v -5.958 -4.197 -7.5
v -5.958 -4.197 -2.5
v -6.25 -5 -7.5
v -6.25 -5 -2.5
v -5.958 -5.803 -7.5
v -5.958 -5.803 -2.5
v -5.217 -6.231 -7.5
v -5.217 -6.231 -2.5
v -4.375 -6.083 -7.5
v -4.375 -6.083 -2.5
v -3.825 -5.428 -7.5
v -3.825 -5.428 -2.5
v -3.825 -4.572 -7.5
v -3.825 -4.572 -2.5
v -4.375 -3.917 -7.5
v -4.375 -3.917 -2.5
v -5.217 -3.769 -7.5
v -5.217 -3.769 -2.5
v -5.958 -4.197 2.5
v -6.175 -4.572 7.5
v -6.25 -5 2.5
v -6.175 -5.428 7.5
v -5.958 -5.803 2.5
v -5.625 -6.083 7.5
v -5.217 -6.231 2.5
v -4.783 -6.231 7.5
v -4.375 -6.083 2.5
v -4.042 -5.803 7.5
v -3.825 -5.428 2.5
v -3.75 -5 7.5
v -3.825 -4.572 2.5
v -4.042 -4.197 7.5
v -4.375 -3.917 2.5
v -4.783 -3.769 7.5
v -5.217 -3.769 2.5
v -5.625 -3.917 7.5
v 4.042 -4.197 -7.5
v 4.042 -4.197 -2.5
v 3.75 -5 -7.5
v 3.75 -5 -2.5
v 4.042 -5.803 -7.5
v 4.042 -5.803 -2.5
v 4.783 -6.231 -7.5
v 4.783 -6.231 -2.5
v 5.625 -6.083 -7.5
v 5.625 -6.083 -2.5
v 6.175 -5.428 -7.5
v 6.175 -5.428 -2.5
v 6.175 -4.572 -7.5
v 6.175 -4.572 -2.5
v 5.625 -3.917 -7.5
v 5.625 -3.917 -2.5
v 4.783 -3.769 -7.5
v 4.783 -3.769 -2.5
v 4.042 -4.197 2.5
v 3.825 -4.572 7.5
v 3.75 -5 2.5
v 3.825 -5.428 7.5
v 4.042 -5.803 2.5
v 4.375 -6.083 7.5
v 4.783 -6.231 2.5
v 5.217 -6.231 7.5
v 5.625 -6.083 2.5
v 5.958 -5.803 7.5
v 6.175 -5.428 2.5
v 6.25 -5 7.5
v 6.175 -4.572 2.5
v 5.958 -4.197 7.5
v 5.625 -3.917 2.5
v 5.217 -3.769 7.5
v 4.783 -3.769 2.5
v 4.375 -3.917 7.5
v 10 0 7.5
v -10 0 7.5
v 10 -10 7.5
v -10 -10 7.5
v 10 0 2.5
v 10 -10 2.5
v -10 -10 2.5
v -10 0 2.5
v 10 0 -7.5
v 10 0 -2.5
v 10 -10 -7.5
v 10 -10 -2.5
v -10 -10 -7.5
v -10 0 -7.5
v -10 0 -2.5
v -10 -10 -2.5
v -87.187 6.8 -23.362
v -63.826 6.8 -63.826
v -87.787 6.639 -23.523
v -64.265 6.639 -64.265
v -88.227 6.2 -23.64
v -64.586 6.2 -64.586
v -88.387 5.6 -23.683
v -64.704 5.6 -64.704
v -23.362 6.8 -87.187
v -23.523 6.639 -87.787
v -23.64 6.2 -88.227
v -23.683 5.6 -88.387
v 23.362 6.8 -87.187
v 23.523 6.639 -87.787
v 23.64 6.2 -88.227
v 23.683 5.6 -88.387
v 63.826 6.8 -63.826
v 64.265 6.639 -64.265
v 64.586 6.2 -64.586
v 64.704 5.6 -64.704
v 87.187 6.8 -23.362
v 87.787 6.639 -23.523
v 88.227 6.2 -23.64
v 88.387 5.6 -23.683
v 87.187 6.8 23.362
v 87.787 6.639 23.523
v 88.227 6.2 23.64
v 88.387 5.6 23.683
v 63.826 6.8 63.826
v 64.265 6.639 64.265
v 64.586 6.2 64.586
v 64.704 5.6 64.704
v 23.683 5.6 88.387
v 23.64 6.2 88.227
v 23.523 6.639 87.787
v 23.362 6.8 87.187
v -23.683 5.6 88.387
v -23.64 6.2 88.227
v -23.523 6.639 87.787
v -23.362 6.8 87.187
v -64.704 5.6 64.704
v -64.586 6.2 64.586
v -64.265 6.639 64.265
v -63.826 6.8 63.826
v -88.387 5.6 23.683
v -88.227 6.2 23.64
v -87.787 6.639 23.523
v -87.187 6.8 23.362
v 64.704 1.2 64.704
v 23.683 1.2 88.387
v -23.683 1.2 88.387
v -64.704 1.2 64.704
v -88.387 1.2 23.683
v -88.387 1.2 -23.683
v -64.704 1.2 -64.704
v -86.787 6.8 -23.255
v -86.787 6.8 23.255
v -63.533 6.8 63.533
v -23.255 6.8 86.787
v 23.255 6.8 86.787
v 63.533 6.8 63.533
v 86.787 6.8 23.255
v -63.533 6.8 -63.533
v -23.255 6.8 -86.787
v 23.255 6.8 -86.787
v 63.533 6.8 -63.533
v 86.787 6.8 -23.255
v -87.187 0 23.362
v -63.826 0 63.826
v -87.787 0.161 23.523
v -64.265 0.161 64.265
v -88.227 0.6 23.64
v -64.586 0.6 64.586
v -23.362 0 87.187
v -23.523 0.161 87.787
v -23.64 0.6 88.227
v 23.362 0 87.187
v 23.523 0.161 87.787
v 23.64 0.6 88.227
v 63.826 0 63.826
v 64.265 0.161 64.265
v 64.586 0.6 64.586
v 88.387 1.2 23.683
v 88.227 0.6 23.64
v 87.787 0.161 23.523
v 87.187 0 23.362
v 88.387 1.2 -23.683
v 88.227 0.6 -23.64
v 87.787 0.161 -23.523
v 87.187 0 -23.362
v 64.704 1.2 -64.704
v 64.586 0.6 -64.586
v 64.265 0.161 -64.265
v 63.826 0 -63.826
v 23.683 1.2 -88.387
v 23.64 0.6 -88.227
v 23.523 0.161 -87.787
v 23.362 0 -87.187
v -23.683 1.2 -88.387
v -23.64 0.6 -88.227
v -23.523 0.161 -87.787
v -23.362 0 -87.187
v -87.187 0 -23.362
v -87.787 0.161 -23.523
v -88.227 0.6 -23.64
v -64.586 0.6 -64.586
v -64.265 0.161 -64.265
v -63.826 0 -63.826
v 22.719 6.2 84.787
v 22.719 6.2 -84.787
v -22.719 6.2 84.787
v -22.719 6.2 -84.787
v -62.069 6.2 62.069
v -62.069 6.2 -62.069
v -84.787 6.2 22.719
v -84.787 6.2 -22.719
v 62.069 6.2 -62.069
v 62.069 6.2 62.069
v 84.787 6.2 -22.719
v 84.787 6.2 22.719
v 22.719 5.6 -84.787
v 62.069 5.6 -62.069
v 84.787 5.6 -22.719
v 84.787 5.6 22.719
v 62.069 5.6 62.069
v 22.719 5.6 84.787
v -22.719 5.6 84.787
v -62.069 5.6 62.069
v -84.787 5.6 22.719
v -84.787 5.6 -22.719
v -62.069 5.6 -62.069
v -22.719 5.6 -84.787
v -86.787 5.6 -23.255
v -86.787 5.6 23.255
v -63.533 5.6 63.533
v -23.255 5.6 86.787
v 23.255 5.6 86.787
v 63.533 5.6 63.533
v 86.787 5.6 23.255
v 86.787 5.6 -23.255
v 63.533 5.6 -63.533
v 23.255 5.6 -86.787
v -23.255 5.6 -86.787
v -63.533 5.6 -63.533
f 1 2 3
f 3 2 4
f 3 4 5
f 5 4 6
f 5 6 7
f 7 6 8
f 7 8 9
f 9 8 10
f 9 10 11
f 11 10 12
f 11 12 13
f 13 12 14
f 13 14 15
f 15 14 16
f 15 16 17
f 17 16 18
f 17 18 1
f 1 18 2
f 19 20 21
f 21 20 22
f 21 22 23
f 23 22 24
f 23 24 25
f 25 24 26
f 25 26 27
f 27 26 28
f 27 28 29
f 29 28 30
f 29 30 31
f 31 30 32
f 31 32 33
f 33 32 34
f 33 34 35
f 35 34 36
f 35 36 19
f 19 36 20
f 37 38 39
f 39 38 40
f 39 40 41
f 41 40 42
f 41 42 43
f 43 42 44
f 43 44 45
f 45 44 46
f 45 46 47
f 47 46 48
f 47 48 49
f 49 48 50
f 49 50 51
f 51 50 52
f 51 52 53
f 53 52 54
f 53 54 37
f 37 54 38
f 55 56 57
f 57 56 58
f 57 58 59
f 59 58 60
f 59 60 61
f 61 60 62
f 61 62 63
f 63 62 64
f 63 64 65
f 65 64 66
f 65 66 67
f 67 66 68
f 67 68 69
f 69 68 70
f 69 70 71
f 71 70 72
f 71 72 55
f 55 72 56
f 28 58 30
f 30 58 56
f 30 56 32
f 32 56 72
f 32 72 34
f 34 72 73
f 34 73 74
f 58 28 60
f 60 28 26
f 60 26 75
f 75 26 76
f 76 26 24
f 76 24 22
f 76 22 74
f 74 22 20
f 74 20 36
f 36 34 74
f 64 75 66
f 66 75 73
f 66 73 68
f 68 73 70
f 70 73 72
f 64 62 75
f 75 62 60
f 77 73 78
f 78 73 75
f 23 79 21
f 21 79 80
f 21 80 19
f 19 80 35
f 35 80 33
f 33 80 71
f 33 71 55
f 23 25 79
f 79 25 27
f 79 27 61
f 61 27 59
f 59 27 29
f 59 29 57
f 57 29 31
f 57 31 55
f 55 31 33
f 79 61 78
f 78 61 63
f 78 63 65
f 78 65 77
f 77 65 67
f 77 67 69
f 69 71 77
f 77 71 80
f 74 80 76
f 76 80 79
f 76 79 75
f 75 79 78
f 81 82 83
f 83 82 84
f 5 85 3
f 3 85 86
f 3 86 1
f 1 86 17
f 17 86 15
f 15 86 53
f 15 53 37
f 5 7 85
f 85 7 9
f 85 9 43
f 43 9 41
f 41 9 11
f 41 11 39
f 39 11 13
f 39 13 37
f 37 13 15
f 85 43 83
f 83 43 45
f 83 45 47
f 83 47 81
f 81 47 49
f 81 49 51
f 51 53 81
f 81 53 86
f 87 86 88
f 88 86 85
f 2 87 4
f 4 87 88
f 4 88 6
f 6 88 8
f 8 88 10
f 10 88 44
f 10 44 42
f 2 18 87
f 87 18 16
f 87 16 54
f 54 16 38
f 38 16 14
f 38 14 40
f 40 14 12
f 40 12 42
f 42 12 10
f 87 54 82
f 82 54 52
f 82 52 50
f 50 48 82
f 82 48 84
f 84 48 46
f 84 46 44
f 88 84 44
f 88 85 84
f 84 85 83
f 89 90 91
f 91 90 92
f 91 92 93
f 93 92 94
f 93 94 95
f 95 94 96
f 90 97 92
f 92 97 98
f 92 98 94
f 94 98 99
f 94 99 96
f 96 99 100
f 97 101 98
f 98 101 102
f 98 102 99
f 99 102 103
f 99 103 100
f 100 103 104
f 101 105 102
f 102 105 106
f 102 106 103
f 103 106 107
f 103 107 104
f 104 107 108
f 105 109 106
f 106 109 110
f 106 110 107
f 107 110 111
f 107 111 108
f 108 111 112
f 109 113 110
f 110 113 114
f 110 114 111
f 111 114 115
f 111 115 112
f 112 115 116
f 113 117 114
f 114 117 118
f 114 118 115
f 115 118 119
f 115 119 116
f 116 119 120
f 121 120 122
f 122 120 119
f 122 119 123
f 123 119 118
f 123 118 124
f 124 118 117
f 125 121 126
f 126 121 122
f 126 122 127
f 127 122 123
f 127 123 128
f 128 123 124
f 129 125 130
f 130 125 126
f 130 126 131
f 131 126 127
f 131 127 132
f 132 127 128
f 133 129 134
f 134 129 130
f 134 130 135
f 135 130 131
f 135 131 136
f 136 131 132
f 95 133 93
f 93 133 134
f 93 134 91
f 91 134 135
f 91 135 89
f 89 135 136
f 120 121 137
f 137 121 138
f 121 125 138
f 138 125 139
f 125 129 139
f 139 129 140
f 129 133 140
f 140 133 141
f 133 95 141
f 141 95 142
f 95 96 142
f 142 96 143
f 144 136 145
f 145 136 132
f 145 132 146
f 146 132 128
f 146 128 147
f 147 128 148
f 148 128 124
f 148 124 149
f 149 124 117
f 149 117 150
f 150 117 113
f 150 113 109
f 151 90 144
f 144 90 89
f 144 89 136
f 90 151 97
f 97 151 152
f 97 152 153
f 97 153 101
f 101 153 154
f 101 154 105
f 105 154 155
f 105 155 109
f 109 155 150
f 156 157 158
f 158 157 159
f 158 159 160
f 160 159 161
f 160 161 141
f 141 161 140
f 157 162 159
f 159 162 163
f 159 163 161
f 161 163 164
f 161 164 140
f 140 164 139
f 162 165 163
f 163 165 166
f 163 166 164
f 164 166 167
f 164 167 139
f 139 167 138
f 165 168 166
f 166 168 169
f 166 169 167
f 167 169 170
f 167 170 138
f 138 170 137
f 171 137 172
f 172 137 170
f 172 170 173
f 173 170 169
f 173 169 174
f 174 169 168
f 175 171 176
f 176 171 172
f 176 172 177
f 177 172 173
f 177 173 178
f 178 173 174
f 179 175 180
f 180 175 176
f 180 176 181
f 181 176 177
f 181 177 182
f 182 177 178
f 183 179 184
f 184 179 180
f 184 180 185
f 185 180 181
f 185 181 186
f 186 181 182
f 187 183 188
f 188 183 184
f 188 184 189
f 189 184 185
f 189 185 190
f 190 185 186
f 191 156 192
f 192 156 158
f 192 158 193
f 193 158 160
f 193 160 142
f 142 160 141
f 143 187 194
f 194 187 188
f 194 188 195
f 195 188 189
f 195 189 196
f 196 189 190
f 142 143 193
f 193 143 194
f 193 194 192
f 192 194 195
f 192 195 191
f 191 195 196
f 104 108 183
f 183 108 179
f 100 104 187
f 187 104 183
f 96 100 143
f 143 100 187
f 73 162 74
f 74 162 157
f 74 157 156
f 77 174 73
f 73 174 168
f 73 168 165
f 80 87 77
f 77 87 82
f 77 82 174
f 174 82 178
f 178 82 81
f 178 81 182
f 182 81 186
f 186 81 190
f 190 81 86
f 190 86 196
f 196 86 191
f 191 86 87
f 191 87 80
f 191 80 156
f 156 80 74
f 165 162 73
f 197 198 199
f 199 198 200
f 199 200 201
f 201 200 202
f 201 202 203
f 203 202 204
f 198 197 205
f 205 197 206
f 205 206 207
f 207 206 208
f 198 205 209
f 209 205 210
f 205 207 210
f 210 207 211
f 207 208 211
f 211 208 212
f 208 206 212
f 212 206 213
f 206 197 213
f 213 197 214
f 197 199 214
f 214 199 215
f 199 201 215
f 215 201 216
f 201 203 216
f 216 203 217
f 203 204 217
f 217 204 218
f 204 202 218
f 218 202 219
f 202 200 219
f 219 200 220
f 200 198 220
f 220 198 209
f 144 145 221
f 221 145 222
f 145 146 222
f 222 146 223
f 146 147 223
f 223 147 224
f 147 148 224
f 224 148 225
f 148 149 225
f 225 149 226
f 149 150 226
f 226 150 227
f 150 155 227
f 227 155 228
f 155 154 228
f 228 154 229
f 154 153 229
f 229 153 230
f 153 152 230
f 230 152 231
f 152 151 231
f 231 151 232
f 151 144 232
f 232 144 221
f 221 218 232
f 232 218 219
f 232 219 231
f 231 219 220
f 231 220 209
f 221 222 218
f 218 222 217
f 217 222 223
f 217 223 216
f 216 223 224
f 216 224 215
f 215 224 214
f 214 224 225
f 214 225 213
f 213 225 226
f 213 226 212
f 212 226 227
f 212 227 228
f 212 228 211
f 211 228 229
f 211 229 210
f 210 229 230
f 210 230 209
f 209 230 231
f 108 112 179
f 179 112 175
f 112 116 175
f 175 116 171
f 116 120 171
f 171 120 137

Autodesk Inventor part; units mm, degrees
ref_plane "YZ Plane" through (0, 0, 0) normal (1, 0, 0) x (0, 1, 0)
ref_plane "XZ Plane" through (0, 0, 0) normal (0, 1, 0) x (-1, 0, 0)
ref_plane "XY Plane" through (0, 0, 0) normal (0, 0, 1) x (1, 0, 0)
sketch "스케치1" plane through (0, 0, 0) normal (0, 1, 0) x (-1, 0, 0)
  line L0 (-62.3615, 62.3615) -> (-22.8259, 85.1874)
  line L1 (-22.8259, 85.1874) -> (22.8259, 85.1874)
  line L2 (22.8259, 85.1874) -> (62.3615, 62.3615)
  line L3 (62.3615, 62.3615) -> (85.1874, 22.8259)
  line L4 (85.1874, 22.8259) -> (85.1874, -22.8259)
  line L5 (85.1874, -22.8259) -> (62.3615, -62.3615)
  line L6 (62.3615, -62.3615) -> (22.8259, -85.1874)
  line L7 (22.8259, -85.1874) -> (-22.8259, -85.1874)
  line L8 (-22.8259, -85.1874) -> (-62.3615, -62.3615)
  line L9 (-62.3615, -62.3615) -> (-85.1874, -22.8259)
  line L10 (-85.1874, -22.8259) -> (-85.1874, 22.8259)
  line L11 (-85.1874, 22.8259) -> (-62.3615, 62.3615)
  line L12 (88.3874, -23.6833) -> (64.7041, -64.7041)
  line L13 (64.7041, -64.7041) -> (23.6833, -88.3874)
  line L14 (23.6833, -88.3874) -> (-23.6833, -88.3874)
  line L15 (-23.6833, -88.3874) -> (-64.7041, -64.7041)
  line L16 (-64.7041, -64.7041) -> (-88.3874, -23.6833)
  line L17 (-88.3874, -23.6833) -> (-88.3874, 23.6833)
  line L18 (-88.3874, 23.6833) -> (-64.7041, 64.7041)
  line L19 (-64.7041, 64.7041) -> (-23.6833, 88.3874)
  line L20 (-23.6833, 88.3874) -> (23.6833, 88.3874)
  line L21 (23.6833, 88.3874) -> (64.7041, 64.7041)
  line L22 (64.7041, 64.7041) -> (88.3874, 23.6833)
  line L23 (88.3874, 23.6833) -> (88.3874, -23.6833)
  point P0 (0, 0)
  point P1 (0, 0)
  point P2 (0, 0)
  dimension "d0" = 176.385
  dimension "d1" = 3.2
extrude "돌출1" add sketch "스케치1" along normal blind 6.8 contours L0 L1 L2 L3 L4 L5 L6 L7 L8 L9 L10 L11 | L12 L13 L14 L15 L16 L17 L18 L19 L20 L21 L22 L23
sketch "스케치2" plane through (0, 6.8, 0) normal (0, 1, 0) x (1, 0, 0)
  line L0 (-23.2546, 86.7874) -> (23.2546, 86.7874)
  line L1 (23.2546, 86.7874) -> (63.5328, 63.5328)
  line L2 (63.5328, 63.5328) -> (86.7874, 23.2546)
  line L3 (86.7874, 23.2546) -> (86.7874, -23.2546)
  line L4 (86.7874, -23.2546) -> (63.5328, -63.5328)
  line L5 (63.5328, -63.5328) -> (23.2546, -86.7874)
  line L6 (23.2546, -86.7874) -> (-23.2546, -86.7874)
  line L7 (-23.2546, -86.7874) -> (-63.5328, -63.5328)
  line L8 (-63.5328, -63.5328) -> (-86.7874, -23.2546)
  line L9 (-86.7874, -23.2546) -> (-86.7874, 23.2546)
  line L10 (-86.7874, 23.2546) -> (-63.5328, 63.5328)
  line L11 (-63.5328, 63.5328) -> (-23.2546, 86.7874)
  line L12 (-88.3874, 23.6833) -> (-88.3874, -23.6833) projected
  line L13 (22.7187, -84.7874) -> (-22.7187, -84.7874)
  line L14 (-22.7187, -84.7874) -> (-62.0687, -62.0687)
  line L15 (-62.0687, -62.0687) -> (-84.7874, -22.7187)
  line L16 (-84.7874, -22.7187) -> (-84.7874, 22.7187)
  line L17 (-84.7874, 22.7187) -> (-62.0687, 62.0687)
  line L18 (-62.0687, 62.0687) -> (-22.7187, 84.7874)
  line L19 (-22.7187, 84.7874) -> (22.7187, 84.7874)
  line L20 (22.7187, 84.7874) -> (62.0687, 62.0687)
  line L21 (62.0687, 62.0687) -> (84.7874, 22.7187)
  line L22 (84.7874, 22.7187) -> (84.7874, -22.7187)
  line L23 (84.7874, -22.7187) -> (62.0687, -62.0687)
  line L24 (62.0687, -62.0687) -> (22.7187, -84.7874)
  point P0 (0, 0)
  point P1 (0, 0)
  point P2 (0, 0)
  dimension "d4" = 1.6
  dimension "d5" = 2
extrude "돌출2" cut sketch "스케치2" against normal blind 1.2
sketch "스케치5" plane through (0, 6.8, 0) normal (0, 1, 0) x (1, 0, 0)
  line L0 (-62.0687, -62.0687) -> (-22.7187, -84.7874) projected
  line L1 (-22.7187, -84.7874) -> (22.7187, -84.7874) projected
  line L2 (22.7187, -84.7874) -> (62.0687, -62.0687) projected
  line L3 (62.0687, -62.0687) -> (84.7874, -22.7187) projected
  line L4 (84.7874, -22.7187) -> (84.7874, 22.7187) projected
  line L5 (84.7874, 22.7187) -> (62.0687, 62.0687) projected
  line L6 (62.0687, 62.0687) -> (22.7187, 84.7874) projected
  line L7 (22.7187, 84.7874) -> (-22.7187, 84.7874) projected
  line L8 (-22.7187, 84.7874) -> (-62.0687, 62.0687) projected
  line L9 (-62.0687, 62.0687) -> (-84.7874, 22.7187) projected
  line L10 (-84.7874, 22.7187) -> (-84.7874, -22.7187) projected
  line L11 (-84.7874, -22.7187) -> (-62.0687, -62.0687) projected
  point P0 (0, 0)
extrude "돌출5" cut sketch "스케치5" against normal blind 0.6
fillet "모깎기1" radius 1.2 24 edges at (76.5457, 0, 44.1937) (76.5457, 6.8, 44.1937) (88.3874, 6.8, 0) (88.3874, 0, 0) (76.5457, 6.8, -44.1937) (76.5457, 0, -44.1937) (44.1937, 6.8, -76.5457) (44.1937, 0, -76.5457) (0, 0, -88.3874) (0, 6.8, -88.3874) (-44.1937, 6.8, -76.5457) (-44.1937, 0, -76.5457) (-76.5457, 0, -44.1937) (-76.5457, 6.8, -44.1937) (-88.3874, 0, 0) (-88.3874, 6.8, 0) (-76.5457, 0, 44.1937) (-76.5457, 6.8, 44.1937) (-44.1937, 0, 76.5457) (-44.1937, 6.8, 76.5457) (0, 0, 88.3874) (0, 6.8, 88.3874) (44.1937, 0, 76.5457) (44.1937, 6.8, 76.5457)
sketch "스케치7" plane through (0, 0, 0) normal (0, -1, 0) x (1, 0, 0)
  line L0 (10, -7.5) -> (-10, -7.5)
  line L1 (-10, -7.5) -> (-10, -2.5)
  line L2 (-10, -2.5) -> (10, -2.5)
  line L3 (10, -2.5) -> (10, -7.5)
  line L4 (10, -7.5) -> (-10, -2.5) construction
  line L5 (-10, -7.5) -> (10, -2.5) construction
  line L6 (0, 0) -> (-24.3026, 0)
  line L7 (10, 7.5) -> (-10, 7.5)
  line L8 (-10, 7.5) -> (-10, 2.5)
  line L9 (-10, 2.5) -> (10, 2.5)
  line L10 (10, 2.5) -> (10, 7.5)
  line L11 (10, 7.5) -> (-10, 2.5) construction
  line L12 (-10, 7.5) -> (10, 2.5) construction
  point P0 (0, -5)
  point P1 (0, 5)
  dimension "d26" = 20
  dimension "d27" = 5
  dimension "d28" = 2.5
extrude "돌출7" add sketch "스케치7" along normal blind 10
sketch "스케치8" plane through (-10, 0, 7.5) normal (0, 0, 1) x (1, 0, 0)
  circle A0 centre (15, -5) radius 1.25
  line L0 (-13.3618, 0) -> (33.3618, 0) projected
  line L1 (20, 0) -> (20, -10) projected
  line L2 (20, -10) -> (0, -10) projected
  line L3 (10, -10) -> (10, 0)
  circle A1 centre (5, -5) radius 1.25
  point P0 (20, -5)
  dimension "d31" = 2.5
  dimension "d32" = 5
  dimension "d33" = 5
extrude "돌출8" cut sketch "스케치8" against normal up to surface (15 mm away) contours A0 | A1
properties part number "(x2)_POSPA_Large_Bottom"
